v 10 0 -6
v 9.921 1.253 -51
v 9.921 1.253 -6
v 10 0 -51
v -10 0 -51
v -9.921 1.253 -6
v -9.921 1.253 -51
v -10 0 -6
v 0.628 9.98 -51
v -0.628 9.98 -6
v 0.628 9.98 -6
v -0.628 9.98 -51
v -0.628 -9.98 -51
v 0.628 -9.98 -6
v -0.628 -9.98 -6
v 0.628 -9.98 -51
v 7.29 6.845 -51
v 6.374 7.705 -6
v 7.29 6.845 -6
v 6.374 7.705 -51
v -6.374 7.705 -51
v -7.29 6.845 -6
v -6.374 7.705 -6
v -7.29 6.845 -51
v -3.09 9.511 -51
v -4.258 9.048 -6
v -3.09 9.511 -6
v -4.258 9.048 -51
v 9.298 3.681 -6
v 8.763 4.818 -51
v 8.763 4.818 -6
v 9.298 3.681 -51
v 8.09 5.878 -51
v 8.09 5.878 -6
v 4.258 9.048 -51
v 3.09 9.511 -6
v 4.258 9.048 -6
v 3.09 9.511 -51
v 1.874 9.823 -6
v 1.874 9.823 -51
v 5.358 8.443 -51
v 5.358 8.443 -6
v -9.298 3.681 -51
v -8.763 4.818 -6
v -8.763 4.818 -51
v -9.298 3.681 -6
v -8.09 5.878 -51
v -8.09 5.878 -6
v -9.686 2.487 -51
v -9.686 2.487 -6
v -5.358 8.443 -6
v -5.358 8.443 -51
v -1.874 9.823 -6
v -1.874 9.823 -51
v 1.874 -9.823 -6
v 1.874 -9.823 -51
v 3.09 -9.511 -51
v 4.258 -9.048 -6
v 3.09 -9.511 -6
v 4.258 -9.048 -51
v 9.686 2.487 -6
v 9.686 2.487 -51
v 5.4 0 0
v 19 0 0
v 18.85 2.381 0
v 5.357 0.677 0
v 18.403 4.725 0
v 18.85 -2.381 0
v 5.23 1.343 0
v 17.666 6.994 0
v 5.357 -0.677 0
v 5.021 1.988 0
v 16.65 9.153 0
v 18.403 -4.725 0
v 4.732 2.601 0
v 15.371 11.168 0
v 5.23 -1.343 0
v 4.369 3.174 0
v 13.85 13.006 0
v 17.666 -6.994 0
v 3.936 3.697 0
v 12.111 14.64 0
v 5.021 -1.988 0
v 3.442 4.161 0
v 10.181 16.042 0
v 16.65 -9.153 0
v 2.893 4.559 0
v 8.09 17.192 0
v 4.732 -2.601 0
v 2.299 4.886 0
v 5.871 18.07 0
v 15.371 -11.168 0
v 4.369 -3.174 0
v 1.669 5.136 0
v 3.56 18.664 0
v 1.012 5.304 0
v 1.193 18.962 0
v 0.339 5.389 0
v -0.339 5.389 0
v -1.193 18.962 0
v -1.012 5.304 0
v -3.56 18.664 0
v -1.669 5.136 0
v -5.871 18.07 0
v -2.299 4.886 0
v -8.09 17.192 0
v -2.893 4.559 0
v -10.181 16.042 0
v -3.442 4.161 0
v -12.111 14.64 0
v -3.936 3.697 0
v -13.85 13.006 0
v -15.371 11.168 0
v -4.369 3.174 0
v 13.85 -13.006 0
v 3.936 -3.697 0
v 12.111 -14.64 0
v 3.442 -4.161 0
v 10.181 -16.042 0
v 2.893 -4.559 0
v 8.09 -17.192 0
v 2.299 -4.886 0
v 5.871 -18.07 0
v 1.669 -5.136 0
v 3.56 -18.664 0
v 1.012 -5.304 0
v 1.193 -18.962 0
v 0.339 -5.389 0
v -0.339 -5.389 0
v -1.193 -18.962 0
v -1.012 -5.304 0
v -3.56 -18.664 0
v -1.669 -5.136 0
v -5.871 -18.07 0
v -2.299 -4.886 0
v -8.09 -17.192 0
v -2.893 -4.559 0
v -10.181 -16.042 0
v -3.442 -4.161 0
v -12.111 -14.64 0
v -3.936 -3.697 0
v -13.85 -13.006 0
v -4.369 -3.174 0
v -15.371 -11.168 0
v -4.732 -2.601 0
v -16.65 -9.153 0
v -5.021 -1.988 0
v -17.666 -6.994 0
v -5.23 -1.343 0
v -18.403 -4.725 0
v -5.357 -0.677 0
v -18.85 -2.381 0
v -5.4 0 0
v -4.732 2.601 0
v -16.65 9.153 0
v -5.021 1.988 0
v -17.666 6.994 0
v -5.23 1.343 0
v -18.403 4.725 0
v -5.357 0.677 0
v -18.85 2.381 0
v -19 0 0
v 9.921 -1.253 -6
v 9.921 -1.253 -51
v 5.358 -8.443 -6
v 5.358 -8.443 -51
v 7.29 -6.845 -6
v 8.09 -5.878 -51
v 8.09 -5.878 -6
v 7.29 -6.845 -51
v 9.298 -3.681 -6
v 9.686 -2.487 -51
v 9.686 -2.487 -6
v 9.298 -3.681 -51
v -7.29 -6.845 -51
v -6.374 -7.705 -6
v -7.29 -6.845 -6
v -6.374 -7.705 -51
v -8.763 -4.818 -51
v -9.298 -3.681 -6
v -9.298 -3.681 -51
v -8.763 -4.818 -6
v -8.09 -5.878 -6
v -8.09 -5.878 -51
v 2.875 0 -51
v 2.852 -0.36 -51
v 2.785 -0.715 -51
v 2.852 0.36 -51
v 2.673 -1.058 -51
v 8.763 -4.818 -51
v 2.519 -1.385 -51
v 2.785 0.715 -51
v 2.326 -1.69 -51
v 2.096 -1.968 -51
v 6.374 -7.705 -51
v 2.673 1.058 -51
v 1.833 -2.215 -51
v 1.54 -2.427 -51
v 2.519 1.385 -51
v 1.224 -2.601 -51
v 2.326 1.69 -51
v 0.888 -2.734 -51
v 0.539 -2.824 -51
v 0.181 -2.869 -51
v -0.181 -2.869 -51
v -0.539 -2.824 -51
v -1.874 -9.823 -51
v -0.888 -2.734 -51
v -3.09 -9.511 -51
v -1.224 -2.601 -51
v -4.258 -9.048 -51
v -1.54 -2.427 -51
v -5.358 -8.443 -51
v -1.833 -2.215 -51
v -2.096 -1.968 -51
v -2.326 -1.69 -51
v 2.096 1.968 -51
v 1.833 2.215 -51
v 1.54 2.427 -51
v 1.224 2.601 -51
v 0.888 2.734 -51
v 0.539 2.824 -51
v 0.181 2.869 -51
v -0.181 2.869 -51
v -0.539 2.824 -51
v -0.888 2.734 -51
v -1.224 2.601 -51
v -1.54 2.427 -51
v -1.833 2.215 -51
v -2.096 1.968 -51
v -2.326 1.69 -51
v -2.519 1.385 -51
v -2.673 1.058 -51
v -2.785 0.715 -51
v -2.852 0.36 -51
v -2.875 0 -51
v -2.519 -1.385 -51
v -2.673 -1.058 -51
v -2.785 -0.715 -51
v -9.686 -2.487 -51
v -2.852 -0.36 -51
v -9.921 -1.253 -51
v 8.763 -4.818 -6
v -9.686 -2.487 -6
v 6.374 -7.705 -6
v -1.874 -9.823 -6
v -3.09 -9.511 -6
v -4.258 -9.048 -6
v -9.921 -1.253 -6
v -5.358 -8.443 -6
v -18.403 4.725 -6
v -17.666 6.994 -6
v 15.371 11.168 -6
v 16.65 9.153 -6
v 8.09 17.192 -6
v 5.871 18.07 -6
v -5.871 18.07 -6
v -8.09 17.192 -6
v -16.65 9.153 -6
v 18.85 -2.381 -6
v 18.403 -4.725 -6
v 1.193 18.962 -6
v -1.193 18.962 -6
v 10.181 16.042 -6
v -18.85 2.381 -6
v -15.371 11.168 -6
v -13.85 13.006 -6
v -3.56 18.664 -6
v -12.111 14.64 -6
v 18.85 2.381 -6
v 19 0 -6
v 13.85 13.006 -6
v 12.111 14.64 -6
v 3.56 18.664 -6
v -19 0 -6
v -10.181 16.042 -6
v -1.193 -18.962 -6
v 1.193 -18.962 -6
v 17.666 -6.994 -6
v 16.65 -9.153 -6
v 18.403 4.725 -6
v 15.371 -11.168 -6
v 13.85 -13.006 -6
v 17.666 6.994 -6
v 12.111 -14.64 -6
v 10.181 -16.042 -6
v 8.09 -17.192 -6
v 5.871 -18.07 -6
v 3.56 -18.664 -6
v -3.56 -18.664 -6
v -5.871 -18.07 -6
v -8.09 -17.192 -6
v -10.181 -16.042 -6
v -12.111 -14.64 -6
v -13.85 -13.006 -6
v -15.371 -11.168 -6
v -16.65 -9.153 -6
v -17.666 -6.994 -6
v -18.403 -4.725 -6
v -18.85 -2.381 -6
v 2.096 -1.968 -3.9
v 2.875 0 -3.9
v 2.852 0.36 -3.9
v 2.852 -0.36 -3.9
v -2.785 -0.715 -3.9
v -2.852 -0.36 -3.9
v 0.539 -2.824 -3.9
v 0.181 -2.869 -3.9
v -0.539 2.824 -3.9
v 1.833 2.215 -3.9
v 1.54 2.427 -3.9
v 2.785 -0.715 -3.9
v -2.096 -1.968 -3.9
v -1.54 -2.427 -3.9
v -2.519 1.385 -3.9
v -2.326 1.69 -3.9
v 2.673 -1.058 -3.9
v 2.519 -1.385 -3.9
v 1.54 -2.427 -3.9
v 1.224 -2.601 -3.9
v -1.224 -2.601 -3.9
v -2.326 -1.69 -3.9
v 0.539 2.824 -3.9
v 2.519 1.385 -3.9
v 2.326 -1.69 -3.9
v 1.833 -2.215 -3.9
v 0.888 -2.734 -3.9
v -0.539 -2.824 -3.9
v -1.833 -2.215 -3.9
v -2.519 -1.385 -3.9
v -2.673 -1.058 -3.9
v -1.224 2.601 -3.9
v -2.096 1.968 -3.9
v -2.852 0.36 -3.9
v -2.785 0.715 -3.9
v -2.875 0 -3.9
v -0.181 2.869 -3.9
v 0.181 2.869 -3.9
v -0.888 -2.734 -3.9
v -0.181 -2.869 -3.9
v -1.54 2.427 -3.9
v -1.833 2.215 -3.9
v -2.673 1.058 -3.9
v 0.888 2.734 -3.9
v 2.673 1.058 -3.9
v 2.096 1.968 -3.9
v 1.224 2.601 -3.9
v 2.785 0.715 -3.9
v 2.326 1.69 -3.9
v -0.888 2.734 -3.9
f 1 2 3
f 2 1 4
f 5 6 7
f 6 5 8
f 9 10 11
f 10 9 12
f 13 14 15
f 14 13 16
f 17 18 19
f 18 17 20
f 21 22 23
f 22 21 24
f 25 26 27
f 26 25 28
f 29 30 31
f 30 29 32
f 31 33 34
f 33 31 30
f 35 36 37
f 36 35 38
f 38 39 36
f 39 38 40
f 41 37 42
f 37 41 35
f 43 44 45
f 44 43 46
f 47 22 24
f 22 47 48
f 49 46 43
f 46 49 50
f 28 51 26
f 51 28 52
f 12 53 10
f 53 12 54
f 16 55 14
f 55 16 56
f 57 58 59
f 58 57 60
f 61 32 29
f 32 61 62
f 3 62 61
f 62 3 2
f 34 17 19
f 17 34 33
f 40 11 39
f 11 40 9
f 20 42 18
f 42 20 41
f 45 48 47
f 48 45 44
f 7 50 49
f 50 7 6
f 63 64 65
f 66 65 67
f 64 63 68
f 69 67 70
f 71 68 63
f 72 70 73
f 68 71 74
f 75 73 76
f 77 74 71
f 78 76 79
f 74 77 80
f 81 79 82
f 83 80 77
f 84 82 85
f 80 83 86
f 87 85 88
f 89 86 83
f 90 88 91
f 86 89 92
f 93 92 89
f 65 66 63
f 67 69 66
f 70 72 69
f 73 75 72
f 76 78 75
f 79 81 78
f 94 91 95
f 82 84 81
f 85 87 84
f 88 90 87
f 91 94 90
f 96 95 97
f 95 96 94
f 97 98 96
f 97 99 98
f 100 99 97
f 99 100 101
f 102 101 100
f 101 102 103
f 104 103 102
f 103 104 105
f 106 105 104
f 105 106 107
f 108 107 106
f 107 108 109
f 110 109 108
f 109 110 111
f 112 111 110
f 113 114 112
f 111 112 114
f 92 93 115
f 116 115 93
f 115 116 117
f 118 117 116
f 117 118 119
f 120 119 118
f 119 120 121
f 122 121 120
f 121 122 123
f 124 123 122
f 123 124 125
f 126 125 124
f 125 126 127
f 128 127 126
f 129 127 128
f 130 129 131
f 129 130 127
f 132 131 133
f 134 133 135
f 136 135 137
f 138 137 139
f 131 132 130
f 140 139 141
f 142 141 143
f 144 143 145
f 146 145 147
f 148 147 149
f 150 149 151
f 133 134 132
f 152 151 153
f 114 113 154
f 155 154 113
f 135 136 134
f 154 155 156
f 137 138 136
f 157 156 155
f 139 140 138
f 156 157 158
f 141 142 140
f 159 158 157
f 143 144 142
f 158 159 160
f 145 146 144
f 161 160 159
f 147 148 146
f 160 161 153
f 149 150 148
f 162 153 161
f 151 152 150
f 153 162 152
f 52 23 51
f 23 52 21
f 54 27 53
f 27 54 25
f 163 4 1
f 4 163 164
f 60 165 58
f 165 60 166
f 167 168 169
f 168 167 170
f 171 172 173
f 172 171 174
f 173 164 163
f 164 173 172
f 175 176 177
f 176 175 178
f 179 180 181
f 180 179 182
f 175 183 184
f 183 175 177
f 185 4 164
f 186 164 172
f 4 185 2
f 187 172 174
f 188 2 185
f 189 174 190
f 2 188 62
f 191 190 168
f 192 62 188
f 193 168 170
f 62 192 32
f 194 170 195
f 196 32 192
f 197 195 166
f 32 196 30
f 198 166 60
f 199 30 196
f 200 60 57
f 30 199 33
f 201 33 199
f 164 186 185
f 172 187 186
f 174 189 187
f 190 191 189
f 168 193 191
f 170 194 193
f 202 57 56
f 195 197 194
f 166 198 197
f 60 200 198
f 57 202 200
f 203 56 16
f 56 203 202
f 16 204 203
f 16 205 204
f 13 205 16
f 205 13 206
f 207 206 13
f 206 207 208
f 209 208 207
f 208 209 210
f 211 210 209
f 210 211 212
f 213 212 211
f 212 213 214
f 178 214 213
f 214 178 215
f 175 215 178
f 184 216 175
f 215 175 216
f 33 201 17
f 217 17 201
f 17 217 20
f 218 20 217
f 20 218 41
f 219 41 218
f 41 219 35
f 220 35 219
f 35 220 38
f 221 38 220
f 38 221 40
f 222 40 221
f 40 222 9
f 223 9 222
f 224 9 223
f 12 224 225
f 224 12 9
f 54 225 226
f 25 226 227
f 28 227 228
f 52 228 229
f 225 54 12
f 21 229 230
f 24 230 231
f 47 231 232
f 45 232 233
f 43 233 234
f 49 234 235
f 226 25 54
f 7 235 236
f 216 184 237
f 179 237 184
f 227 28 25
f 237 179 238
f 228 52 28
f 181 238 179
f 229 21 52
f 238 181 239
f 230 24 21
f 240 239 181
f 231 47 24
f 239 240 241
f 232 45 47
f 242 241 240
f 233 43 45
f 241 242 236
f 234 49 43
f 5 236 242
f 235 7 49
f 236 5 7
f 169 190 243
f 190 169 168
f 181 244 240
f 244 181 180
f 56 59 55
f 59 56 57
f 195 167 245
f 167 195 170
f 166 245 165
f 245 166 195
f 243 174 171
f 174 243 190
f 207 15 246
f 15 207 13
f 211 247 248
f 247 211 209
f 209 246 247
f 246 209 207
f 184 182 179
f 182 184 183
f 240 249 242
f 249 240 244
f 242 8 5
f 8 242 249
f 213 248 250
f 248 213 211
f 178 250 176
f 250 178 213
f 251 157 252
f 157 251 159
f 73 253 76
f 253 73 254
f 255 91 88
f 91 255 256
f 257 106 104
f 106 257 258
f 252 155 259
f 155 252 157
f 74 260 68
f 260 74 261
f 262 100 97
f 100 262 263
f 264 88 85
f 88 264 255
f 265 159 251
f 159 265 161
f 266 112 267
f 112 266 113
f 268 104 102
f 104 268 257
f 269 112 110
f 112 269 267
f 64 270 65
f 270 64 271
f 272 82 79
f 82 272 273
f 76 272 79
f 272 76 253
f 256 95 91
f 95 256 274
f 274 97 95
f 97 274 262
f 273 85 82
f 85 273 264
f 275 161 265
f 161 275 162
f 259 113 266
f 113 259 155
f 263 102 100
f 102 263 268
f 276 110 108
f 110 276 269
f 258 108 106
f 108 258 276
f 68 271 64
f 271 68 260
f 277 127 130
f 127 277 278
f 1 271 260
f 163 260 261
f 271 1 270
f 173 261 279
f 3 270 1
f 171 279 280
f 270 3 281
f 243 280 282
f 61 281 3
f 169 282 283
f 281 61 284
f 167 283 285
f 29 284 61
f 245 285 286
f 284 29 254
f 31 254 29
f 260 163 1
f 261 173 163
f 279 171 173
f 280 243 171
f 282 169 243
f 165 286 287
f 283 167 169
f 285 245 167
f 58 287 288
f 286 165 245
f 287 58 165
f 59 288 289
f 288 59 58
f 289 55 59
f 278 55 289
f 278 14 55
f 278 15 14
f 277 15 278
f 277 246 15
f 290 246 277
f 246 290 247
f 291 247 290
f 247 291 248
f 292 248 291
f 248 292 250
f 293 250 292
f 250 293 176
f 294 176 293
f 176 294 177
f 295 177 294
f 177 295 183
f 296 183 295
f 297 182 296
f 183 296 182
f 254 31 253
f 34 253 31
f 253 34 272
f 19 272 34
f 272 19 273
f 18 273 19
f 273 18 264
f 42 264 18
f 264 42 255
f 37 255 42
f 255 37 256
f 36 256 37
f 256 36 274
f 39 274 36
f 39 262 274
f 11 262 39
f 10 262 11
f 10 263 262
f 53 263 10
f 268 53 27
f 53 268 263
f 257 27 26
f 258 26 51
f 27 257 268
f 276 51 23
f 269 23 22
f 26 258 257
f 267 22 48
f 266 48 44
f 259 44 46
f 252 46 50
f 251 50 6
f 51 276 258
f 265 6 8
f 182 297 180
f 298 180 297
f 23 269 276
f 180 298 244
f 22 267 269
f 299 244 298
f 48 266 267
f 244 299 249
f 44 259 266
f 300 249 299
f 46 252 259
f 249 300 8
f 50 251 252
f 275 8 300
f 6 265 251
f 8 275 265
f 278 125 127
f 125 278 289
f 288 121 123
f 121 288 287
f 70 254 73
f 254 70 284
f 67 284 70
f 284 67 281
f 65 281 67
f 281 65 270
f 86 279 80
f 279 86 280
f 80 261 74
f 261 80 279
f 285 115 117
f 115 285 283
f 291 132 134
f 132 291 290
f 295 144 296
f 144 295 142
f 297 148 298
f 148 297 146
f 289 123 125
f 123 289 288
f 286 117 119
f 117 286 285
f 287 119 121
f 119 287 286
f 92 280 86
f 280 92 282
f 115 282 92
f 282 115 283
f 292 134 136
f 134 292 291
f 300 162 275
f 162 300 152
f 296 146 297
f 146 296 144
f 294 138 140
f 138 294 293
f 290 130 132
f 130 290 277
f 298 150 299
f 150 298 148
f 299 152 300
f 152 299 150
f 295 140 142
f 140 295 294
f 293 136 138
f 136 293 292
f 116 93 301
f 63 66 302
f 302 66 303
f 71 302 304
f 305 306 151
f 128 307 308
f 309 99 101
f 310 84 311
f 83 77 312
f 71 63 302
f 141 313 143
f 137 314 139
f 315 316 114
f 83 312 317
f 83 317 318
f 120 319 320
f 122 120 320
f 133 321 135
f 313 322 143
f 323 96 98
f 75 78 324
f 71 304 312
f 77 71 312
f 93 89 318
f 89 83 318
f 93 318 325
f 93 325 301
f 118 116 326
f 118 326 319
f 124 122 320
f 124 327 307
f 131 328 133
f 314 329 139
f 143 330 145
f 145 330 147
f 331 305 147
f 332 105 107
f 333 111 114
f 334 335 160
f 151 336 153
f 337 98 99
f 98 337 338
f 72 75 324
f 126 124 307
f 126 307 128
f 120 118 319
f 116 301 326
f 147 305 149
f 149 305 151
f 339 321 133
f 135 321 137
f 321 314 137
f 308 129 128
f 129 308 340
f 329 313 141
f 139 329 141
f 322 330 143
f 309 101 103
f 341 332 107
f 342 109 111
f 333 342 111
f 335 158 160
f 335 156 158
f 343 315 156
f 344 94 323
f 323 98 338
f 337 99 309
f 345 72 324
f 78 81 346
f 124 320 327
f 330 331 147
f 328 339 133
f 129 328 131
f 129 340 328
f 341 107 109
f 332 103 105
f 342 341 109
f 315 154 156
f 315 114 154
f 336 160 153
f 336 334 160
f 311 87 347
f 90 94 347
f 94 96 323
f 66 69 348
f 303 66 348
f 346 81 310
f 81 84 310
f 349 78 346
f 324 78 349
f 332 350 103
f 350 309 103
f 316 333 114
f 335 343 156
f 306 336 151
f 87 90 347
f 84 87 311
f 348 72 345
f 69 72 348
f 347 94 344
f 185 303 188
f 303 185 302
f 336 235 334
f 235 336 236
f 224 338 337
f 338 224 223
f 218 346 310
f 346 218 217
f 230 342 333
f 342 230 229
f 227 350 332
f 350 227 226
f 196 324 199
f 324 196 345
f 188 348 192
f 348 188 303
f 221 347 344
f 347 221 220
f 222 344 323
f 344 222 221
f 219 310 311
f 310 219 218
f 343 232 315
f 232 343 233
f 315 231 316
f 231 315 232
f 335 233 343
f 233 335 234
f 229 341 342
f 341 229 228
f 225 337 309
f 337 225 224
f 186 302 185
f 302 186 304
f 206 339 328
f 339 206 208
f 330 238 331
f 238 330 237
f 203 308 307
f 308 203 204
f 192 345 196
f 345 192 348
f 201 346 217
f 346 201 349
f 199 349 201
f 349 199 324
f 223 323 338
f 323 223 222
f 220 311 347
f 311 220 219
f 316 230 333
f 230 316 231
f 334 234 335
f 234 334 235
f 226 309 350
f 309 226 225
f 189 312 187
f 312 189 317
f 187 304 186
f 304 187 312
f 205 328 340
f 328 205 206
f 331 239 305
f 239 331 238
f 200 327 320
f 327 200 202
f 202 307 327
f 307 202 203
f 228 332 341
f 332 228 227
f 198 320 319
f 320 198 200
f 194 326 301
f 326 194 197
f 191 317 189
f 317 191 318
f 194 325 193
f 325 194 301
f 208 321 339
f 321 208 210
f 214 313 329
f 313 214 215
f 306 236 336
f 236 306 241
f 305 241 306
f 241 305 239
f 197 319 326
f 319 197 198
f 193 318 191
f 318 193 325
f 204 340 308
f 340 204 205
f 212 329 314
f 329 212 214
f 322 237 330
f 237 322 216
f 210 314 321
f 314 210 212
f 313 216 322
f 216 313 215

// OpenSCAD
$fn = 50;


difference() {
	union() {
		translate(v = [0, 0, -51.0000000000]) {
			cylinder(h = 51, r = 10.0000000000);
		}
		translate(v = [0, 0, -6.0000000000]) {
			cylinder(h = 6, r = 19.0000000000);
		}
	}
	union() {
		translate(v = [0, 0, 0]) {
			rotate(a = [0, 0, 0]) {
				difference() {
					union() {
						#translate(v = [0, 0, -51.0000000000]) {
							cylinder(h = 51, r = 2.6000000000);
						}
						#translate(v = [0, 0, -3.9000000000]) {
							cylinder(h = 3.9000000000, r1 = 2.8750000000, r2 = 5.4000000000);
						}
						#translate(v = [0, 0, -51.0000000000]) {
							cylinder(h = 51, r = 2.8750000000);
						}
						#translate(v = [0, 0, -51.0000000000]) {
							cylinder(h = 51, r = 2.6000000000);
						}
					}
					union();
				}
			}
		}
	}
}
